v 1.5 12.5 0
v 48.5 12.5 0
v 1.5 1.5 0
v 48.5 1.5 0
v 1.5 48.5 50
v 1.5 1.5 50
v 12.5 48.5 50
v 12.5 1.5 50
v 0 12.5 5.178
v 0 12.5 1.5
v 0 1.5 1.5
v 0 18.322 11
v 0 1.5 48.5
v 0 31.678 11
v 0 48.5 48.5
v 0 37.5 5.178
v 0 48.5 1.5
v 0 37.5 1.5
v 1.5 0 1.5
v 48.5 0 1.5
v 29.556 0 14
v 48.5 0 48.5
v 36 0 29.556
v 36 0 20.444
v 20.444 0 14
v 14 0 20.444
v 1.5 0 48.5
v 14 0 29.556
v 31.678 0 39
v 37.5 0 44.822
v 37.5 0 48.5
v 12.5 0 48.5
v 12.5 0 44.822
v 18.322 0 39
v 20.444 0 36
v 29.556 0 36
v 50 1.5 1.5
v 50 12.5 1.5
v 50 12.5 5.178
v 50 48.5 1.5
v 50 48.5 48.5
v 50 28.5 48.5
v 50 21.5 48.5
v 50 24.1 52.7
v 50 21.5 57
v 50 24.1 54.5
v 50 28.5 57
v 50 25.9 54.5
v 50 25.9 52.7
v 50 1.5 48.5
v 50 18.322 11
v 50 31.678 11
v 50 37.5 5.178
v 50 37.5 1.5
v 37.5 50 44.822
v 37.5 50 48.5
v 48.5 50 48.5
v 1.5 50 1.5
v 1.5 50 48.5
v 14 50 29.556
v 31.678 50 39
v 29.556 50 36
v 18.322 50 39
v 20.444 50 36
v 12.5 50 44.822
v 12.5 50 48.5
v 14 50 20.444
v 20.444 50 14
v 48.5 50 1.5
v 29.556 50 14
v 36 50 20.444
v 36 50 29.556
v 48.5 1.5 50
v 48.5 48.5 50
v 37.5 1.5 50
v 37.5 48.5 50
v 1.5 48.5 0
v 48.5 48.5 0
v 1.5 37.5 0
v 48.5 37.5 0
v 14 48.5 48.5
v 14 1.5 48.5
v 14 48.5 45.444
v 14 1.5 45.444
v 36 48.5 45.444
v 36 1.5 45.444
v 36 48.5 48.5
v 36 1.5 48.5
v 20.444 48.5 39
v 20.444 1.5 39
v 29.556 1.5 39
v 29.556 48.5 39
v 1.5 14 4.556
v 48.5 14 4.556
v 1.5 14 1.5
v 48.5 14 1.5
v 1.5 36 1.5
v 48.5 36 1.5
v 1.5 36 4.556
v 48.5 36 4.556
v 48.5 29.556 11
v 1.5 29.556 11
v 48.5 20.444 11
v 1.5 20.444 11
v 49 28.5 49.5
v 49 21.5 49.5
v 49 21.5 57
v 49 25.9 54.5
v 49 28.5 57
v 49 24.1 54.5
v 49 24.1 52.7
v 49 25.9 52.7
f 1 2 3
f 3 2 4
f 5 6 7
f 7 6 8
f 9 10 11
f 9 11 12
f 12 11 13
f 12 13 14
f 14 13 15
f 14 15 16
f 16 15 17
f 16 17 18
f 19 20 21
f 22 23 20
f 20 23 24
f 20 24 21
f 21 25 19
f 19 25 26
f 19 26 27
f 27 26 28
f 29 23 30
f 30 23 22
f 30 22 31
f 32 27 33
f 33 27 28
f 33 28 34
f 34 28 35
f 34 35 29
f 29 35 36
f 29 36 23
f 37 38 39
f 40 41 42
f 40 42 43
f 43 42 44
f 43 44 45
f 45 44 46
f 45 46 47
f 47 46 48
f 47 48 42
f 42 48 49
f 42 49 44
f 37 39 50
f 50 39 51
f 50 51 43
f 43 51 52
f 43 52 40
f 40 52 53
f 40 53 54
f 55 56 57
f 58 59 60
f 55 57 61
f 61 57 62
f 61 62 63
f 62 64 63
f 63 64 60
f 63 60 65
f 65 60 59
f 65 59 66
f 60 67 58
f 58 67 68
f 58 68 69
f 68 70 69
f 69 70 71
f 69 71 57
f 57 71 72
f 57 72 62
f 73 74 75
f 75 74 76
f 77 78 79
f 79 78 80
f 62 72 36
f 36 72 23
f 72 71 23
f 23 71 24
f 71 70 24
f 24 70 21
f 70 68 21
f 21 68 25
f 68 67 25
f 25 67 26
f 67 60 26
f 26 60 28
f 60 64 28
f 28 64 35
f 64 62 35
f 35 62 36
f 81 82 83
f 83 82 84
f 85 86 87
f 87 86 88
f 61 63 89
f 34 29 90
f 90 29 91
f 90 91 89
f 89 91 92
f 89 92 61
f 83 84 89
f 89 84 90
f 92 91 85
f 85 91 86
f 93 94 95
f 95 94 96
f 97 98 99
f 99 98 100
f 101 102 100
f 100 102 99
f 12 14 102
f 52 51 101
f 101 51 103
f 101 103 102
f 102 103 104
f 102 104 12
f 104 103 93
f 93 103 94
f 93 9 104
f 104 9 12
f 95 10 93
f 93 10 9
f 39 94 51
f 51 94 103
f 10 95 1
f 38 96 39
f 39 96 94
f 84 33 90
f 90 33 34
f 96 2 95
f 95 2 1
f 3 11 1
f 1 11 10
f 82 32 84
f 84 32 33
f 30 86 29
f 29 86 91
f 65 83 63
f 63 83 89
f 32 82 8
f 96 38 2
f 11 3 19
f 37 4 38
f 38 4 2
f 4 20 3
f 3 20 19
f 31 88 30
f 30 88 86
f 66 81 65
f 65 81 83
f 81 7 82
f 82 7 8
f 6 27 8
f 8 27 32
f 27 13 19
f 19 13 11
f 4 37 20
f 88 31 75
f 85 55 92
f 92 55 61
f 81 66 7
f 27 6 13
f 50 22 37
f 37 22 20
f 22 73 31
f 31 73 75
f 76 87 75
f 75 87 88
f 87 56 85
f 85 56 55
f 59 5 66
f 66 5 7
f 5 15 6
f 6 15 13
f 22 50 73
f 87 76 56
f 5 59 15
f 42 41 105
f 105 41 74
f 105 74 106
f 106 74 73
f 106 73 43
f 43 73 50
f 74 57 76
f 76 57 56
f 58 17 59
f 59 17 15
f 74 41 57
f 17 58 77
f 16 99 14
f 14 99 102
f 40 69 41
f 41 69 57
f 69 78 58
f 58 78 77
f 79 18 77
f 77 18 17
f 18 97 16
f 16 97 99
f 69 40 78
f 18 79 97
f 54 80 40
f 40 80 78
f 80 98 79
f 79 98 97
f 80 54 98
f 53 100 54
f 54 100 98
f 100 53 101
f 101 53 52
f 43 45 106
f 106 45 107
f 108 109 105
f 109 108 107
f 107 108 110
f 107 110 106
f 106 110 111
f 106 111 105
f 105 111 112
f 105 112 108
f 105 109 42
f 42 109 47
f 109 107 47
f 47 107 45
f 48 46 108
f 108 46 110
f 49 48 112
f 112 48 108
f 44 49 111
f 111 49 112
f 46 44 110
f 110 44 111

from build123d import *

# Parameters (mm, degrees)
SKETCH1_W                = 50
SKETCH1_H                = 50
BOSS_EXTRUDE1_DEPTH      = 50
CUT_EXTRUDE2_DEPTH       = 87.602540378
CUT_EXTRUDE3_DEPTH       = 87.602540378
CHAMFER1_SIZE            = 1.5
BOSS_EXTRUDE2_DEPTH      = 7
BOSS_EXTRUDE2_DEPTH_BACK = 10
SKETCH5_W                = 1
SKETCH5_H                = 7
SKETCH6_W                = 1.8
SKETCH6_H                = 1.8
CUT_EXTRUDE4_DEPTH       = 7


with BuildPart() as part:
    # Sketch1 → Boss-Extrude1 (new body)
    with BuildSketch(Plane.XY):
        with Locations((25, 25)):
            Rectangle(SKETCH1_W, SKETCH1_H)
    extrude(amount=BOSS_EXTRUDE1_DEPTH)

    # Sketch3 → Cut-Extrude2 (cut, through all)
    with BuildSketch(Plane.XZ):
        Polygon((29.556349186, 36), (20.443650814, 36), (14, 29.556349186), (14, 20.443650814), (20.443650814, 14), (29.556349186, 14), (36, 20.443650814), (36, 29.556349186), align=None)
        Polygon((29.556349186, 39), (36, 45.443650814), (36, 54.556349186), (29.556349186, 61), (20.443650814, 61), (14, 54.556349186), (14, 45.443650814), (20.443650814, 39), align=None)
    extrude(amount=-CUT_EXTRUDE2_DEPTH, mode=Mode.SUBTRACT)

    # Sketch4 → Cut-Extrude3 (cut, through all)
    with BuildSketch(Plane.ZY):
        Polygon((4.556349186, 14), (11, 20.443650814), (11, 29.556349186), (4.556349186, 36), (-4.556349186, 36), (-11, 29.556349186), (-11, 20.443650814), (-4.556349186, 14), align=None)
    extrude(amount=-CUT_EXTRUDE3_DEPTH, mode=Mode.SUBTRACT)

    # Chamfer1
    chamfer1_edges = [part.edges().sort_by_distance(p)[0] for p in [
        (50, 25, 50),
        (43, 50, 50),
        (43, 0, 50),
        (7, 50, 50),
        (36, 25, 50),
        (14, 25, 50),
        (0, 25, 50),
        (14, 50, 47.721825407),
        (36, 50, 47.721825407),
        (25, 50, 0),
        (36, 0, 47.721825407),
        (14, 0, 47.721825407),
        (17.221825407, 0, 42.221825407),
        (32.778174593, 0, 42.221825407),
        (17.221825407, 50, 42.221825407),
        (50, 7, 0),
        (32.778174593, 50, 42.221825407),
        (25, 0, 0),
        (0, 43, 0),
        (7, 0, 50),
        (0, 50, 25),
        (50, 50, 25),
        (50, 0, 25),
        (0, 0, 25),
        (0, 7, 0),
        (50, 43, 0),
        (25, 36, 0),
        (25, 14, 0),
        (50, 14, 2.278174593),
        (50, 36, 2.278174593),
        (50, 32.778174593, 7.778174593),
        (50, 17.221825407, 7.778174593),
        (0, 14, 2.278174593),
        (0, 17.221825407, 7.778174593),
        (0, 32.778174593, 7.778174593),
        (0, 36, 2.278174593),
    ]]
    chamfer(chamfer1_edges, length=CHAMFER1_SIZE)

    # Sketch5 → Boss-Extrude2 (add, two sides: drawn at the far end of the back side and taken through both)
    with BuildSketch(Plane.XY.offset(50).offset(-BOSS_EXTRUDE2_DEPTH_BACK)):
        with Locations((49.5, 25)):
            Rectangle(SKETCH5_W, SKETCH5_H)
    extrude(amount=BOSS_EXTRUDE2_DEPTH + BOSS_EXTRUDE2_DEPTH_BACK)

    # Sketch6 → Cut-Extrude4 (cut)
    with BuildSketch(Plane(origin=(50, 0, 0), x_dir=(0, 0, -1), z_dir=(1, 0, 0))):
        with Locations((-53.6, 25)):
            Rectangle(SKETCH6_W, SKETCH6_H)
    extrude(amount=-CUT_EXTRUDE4_DEPTH, mode=Mode.SUBTRACT)


solid = part.part
